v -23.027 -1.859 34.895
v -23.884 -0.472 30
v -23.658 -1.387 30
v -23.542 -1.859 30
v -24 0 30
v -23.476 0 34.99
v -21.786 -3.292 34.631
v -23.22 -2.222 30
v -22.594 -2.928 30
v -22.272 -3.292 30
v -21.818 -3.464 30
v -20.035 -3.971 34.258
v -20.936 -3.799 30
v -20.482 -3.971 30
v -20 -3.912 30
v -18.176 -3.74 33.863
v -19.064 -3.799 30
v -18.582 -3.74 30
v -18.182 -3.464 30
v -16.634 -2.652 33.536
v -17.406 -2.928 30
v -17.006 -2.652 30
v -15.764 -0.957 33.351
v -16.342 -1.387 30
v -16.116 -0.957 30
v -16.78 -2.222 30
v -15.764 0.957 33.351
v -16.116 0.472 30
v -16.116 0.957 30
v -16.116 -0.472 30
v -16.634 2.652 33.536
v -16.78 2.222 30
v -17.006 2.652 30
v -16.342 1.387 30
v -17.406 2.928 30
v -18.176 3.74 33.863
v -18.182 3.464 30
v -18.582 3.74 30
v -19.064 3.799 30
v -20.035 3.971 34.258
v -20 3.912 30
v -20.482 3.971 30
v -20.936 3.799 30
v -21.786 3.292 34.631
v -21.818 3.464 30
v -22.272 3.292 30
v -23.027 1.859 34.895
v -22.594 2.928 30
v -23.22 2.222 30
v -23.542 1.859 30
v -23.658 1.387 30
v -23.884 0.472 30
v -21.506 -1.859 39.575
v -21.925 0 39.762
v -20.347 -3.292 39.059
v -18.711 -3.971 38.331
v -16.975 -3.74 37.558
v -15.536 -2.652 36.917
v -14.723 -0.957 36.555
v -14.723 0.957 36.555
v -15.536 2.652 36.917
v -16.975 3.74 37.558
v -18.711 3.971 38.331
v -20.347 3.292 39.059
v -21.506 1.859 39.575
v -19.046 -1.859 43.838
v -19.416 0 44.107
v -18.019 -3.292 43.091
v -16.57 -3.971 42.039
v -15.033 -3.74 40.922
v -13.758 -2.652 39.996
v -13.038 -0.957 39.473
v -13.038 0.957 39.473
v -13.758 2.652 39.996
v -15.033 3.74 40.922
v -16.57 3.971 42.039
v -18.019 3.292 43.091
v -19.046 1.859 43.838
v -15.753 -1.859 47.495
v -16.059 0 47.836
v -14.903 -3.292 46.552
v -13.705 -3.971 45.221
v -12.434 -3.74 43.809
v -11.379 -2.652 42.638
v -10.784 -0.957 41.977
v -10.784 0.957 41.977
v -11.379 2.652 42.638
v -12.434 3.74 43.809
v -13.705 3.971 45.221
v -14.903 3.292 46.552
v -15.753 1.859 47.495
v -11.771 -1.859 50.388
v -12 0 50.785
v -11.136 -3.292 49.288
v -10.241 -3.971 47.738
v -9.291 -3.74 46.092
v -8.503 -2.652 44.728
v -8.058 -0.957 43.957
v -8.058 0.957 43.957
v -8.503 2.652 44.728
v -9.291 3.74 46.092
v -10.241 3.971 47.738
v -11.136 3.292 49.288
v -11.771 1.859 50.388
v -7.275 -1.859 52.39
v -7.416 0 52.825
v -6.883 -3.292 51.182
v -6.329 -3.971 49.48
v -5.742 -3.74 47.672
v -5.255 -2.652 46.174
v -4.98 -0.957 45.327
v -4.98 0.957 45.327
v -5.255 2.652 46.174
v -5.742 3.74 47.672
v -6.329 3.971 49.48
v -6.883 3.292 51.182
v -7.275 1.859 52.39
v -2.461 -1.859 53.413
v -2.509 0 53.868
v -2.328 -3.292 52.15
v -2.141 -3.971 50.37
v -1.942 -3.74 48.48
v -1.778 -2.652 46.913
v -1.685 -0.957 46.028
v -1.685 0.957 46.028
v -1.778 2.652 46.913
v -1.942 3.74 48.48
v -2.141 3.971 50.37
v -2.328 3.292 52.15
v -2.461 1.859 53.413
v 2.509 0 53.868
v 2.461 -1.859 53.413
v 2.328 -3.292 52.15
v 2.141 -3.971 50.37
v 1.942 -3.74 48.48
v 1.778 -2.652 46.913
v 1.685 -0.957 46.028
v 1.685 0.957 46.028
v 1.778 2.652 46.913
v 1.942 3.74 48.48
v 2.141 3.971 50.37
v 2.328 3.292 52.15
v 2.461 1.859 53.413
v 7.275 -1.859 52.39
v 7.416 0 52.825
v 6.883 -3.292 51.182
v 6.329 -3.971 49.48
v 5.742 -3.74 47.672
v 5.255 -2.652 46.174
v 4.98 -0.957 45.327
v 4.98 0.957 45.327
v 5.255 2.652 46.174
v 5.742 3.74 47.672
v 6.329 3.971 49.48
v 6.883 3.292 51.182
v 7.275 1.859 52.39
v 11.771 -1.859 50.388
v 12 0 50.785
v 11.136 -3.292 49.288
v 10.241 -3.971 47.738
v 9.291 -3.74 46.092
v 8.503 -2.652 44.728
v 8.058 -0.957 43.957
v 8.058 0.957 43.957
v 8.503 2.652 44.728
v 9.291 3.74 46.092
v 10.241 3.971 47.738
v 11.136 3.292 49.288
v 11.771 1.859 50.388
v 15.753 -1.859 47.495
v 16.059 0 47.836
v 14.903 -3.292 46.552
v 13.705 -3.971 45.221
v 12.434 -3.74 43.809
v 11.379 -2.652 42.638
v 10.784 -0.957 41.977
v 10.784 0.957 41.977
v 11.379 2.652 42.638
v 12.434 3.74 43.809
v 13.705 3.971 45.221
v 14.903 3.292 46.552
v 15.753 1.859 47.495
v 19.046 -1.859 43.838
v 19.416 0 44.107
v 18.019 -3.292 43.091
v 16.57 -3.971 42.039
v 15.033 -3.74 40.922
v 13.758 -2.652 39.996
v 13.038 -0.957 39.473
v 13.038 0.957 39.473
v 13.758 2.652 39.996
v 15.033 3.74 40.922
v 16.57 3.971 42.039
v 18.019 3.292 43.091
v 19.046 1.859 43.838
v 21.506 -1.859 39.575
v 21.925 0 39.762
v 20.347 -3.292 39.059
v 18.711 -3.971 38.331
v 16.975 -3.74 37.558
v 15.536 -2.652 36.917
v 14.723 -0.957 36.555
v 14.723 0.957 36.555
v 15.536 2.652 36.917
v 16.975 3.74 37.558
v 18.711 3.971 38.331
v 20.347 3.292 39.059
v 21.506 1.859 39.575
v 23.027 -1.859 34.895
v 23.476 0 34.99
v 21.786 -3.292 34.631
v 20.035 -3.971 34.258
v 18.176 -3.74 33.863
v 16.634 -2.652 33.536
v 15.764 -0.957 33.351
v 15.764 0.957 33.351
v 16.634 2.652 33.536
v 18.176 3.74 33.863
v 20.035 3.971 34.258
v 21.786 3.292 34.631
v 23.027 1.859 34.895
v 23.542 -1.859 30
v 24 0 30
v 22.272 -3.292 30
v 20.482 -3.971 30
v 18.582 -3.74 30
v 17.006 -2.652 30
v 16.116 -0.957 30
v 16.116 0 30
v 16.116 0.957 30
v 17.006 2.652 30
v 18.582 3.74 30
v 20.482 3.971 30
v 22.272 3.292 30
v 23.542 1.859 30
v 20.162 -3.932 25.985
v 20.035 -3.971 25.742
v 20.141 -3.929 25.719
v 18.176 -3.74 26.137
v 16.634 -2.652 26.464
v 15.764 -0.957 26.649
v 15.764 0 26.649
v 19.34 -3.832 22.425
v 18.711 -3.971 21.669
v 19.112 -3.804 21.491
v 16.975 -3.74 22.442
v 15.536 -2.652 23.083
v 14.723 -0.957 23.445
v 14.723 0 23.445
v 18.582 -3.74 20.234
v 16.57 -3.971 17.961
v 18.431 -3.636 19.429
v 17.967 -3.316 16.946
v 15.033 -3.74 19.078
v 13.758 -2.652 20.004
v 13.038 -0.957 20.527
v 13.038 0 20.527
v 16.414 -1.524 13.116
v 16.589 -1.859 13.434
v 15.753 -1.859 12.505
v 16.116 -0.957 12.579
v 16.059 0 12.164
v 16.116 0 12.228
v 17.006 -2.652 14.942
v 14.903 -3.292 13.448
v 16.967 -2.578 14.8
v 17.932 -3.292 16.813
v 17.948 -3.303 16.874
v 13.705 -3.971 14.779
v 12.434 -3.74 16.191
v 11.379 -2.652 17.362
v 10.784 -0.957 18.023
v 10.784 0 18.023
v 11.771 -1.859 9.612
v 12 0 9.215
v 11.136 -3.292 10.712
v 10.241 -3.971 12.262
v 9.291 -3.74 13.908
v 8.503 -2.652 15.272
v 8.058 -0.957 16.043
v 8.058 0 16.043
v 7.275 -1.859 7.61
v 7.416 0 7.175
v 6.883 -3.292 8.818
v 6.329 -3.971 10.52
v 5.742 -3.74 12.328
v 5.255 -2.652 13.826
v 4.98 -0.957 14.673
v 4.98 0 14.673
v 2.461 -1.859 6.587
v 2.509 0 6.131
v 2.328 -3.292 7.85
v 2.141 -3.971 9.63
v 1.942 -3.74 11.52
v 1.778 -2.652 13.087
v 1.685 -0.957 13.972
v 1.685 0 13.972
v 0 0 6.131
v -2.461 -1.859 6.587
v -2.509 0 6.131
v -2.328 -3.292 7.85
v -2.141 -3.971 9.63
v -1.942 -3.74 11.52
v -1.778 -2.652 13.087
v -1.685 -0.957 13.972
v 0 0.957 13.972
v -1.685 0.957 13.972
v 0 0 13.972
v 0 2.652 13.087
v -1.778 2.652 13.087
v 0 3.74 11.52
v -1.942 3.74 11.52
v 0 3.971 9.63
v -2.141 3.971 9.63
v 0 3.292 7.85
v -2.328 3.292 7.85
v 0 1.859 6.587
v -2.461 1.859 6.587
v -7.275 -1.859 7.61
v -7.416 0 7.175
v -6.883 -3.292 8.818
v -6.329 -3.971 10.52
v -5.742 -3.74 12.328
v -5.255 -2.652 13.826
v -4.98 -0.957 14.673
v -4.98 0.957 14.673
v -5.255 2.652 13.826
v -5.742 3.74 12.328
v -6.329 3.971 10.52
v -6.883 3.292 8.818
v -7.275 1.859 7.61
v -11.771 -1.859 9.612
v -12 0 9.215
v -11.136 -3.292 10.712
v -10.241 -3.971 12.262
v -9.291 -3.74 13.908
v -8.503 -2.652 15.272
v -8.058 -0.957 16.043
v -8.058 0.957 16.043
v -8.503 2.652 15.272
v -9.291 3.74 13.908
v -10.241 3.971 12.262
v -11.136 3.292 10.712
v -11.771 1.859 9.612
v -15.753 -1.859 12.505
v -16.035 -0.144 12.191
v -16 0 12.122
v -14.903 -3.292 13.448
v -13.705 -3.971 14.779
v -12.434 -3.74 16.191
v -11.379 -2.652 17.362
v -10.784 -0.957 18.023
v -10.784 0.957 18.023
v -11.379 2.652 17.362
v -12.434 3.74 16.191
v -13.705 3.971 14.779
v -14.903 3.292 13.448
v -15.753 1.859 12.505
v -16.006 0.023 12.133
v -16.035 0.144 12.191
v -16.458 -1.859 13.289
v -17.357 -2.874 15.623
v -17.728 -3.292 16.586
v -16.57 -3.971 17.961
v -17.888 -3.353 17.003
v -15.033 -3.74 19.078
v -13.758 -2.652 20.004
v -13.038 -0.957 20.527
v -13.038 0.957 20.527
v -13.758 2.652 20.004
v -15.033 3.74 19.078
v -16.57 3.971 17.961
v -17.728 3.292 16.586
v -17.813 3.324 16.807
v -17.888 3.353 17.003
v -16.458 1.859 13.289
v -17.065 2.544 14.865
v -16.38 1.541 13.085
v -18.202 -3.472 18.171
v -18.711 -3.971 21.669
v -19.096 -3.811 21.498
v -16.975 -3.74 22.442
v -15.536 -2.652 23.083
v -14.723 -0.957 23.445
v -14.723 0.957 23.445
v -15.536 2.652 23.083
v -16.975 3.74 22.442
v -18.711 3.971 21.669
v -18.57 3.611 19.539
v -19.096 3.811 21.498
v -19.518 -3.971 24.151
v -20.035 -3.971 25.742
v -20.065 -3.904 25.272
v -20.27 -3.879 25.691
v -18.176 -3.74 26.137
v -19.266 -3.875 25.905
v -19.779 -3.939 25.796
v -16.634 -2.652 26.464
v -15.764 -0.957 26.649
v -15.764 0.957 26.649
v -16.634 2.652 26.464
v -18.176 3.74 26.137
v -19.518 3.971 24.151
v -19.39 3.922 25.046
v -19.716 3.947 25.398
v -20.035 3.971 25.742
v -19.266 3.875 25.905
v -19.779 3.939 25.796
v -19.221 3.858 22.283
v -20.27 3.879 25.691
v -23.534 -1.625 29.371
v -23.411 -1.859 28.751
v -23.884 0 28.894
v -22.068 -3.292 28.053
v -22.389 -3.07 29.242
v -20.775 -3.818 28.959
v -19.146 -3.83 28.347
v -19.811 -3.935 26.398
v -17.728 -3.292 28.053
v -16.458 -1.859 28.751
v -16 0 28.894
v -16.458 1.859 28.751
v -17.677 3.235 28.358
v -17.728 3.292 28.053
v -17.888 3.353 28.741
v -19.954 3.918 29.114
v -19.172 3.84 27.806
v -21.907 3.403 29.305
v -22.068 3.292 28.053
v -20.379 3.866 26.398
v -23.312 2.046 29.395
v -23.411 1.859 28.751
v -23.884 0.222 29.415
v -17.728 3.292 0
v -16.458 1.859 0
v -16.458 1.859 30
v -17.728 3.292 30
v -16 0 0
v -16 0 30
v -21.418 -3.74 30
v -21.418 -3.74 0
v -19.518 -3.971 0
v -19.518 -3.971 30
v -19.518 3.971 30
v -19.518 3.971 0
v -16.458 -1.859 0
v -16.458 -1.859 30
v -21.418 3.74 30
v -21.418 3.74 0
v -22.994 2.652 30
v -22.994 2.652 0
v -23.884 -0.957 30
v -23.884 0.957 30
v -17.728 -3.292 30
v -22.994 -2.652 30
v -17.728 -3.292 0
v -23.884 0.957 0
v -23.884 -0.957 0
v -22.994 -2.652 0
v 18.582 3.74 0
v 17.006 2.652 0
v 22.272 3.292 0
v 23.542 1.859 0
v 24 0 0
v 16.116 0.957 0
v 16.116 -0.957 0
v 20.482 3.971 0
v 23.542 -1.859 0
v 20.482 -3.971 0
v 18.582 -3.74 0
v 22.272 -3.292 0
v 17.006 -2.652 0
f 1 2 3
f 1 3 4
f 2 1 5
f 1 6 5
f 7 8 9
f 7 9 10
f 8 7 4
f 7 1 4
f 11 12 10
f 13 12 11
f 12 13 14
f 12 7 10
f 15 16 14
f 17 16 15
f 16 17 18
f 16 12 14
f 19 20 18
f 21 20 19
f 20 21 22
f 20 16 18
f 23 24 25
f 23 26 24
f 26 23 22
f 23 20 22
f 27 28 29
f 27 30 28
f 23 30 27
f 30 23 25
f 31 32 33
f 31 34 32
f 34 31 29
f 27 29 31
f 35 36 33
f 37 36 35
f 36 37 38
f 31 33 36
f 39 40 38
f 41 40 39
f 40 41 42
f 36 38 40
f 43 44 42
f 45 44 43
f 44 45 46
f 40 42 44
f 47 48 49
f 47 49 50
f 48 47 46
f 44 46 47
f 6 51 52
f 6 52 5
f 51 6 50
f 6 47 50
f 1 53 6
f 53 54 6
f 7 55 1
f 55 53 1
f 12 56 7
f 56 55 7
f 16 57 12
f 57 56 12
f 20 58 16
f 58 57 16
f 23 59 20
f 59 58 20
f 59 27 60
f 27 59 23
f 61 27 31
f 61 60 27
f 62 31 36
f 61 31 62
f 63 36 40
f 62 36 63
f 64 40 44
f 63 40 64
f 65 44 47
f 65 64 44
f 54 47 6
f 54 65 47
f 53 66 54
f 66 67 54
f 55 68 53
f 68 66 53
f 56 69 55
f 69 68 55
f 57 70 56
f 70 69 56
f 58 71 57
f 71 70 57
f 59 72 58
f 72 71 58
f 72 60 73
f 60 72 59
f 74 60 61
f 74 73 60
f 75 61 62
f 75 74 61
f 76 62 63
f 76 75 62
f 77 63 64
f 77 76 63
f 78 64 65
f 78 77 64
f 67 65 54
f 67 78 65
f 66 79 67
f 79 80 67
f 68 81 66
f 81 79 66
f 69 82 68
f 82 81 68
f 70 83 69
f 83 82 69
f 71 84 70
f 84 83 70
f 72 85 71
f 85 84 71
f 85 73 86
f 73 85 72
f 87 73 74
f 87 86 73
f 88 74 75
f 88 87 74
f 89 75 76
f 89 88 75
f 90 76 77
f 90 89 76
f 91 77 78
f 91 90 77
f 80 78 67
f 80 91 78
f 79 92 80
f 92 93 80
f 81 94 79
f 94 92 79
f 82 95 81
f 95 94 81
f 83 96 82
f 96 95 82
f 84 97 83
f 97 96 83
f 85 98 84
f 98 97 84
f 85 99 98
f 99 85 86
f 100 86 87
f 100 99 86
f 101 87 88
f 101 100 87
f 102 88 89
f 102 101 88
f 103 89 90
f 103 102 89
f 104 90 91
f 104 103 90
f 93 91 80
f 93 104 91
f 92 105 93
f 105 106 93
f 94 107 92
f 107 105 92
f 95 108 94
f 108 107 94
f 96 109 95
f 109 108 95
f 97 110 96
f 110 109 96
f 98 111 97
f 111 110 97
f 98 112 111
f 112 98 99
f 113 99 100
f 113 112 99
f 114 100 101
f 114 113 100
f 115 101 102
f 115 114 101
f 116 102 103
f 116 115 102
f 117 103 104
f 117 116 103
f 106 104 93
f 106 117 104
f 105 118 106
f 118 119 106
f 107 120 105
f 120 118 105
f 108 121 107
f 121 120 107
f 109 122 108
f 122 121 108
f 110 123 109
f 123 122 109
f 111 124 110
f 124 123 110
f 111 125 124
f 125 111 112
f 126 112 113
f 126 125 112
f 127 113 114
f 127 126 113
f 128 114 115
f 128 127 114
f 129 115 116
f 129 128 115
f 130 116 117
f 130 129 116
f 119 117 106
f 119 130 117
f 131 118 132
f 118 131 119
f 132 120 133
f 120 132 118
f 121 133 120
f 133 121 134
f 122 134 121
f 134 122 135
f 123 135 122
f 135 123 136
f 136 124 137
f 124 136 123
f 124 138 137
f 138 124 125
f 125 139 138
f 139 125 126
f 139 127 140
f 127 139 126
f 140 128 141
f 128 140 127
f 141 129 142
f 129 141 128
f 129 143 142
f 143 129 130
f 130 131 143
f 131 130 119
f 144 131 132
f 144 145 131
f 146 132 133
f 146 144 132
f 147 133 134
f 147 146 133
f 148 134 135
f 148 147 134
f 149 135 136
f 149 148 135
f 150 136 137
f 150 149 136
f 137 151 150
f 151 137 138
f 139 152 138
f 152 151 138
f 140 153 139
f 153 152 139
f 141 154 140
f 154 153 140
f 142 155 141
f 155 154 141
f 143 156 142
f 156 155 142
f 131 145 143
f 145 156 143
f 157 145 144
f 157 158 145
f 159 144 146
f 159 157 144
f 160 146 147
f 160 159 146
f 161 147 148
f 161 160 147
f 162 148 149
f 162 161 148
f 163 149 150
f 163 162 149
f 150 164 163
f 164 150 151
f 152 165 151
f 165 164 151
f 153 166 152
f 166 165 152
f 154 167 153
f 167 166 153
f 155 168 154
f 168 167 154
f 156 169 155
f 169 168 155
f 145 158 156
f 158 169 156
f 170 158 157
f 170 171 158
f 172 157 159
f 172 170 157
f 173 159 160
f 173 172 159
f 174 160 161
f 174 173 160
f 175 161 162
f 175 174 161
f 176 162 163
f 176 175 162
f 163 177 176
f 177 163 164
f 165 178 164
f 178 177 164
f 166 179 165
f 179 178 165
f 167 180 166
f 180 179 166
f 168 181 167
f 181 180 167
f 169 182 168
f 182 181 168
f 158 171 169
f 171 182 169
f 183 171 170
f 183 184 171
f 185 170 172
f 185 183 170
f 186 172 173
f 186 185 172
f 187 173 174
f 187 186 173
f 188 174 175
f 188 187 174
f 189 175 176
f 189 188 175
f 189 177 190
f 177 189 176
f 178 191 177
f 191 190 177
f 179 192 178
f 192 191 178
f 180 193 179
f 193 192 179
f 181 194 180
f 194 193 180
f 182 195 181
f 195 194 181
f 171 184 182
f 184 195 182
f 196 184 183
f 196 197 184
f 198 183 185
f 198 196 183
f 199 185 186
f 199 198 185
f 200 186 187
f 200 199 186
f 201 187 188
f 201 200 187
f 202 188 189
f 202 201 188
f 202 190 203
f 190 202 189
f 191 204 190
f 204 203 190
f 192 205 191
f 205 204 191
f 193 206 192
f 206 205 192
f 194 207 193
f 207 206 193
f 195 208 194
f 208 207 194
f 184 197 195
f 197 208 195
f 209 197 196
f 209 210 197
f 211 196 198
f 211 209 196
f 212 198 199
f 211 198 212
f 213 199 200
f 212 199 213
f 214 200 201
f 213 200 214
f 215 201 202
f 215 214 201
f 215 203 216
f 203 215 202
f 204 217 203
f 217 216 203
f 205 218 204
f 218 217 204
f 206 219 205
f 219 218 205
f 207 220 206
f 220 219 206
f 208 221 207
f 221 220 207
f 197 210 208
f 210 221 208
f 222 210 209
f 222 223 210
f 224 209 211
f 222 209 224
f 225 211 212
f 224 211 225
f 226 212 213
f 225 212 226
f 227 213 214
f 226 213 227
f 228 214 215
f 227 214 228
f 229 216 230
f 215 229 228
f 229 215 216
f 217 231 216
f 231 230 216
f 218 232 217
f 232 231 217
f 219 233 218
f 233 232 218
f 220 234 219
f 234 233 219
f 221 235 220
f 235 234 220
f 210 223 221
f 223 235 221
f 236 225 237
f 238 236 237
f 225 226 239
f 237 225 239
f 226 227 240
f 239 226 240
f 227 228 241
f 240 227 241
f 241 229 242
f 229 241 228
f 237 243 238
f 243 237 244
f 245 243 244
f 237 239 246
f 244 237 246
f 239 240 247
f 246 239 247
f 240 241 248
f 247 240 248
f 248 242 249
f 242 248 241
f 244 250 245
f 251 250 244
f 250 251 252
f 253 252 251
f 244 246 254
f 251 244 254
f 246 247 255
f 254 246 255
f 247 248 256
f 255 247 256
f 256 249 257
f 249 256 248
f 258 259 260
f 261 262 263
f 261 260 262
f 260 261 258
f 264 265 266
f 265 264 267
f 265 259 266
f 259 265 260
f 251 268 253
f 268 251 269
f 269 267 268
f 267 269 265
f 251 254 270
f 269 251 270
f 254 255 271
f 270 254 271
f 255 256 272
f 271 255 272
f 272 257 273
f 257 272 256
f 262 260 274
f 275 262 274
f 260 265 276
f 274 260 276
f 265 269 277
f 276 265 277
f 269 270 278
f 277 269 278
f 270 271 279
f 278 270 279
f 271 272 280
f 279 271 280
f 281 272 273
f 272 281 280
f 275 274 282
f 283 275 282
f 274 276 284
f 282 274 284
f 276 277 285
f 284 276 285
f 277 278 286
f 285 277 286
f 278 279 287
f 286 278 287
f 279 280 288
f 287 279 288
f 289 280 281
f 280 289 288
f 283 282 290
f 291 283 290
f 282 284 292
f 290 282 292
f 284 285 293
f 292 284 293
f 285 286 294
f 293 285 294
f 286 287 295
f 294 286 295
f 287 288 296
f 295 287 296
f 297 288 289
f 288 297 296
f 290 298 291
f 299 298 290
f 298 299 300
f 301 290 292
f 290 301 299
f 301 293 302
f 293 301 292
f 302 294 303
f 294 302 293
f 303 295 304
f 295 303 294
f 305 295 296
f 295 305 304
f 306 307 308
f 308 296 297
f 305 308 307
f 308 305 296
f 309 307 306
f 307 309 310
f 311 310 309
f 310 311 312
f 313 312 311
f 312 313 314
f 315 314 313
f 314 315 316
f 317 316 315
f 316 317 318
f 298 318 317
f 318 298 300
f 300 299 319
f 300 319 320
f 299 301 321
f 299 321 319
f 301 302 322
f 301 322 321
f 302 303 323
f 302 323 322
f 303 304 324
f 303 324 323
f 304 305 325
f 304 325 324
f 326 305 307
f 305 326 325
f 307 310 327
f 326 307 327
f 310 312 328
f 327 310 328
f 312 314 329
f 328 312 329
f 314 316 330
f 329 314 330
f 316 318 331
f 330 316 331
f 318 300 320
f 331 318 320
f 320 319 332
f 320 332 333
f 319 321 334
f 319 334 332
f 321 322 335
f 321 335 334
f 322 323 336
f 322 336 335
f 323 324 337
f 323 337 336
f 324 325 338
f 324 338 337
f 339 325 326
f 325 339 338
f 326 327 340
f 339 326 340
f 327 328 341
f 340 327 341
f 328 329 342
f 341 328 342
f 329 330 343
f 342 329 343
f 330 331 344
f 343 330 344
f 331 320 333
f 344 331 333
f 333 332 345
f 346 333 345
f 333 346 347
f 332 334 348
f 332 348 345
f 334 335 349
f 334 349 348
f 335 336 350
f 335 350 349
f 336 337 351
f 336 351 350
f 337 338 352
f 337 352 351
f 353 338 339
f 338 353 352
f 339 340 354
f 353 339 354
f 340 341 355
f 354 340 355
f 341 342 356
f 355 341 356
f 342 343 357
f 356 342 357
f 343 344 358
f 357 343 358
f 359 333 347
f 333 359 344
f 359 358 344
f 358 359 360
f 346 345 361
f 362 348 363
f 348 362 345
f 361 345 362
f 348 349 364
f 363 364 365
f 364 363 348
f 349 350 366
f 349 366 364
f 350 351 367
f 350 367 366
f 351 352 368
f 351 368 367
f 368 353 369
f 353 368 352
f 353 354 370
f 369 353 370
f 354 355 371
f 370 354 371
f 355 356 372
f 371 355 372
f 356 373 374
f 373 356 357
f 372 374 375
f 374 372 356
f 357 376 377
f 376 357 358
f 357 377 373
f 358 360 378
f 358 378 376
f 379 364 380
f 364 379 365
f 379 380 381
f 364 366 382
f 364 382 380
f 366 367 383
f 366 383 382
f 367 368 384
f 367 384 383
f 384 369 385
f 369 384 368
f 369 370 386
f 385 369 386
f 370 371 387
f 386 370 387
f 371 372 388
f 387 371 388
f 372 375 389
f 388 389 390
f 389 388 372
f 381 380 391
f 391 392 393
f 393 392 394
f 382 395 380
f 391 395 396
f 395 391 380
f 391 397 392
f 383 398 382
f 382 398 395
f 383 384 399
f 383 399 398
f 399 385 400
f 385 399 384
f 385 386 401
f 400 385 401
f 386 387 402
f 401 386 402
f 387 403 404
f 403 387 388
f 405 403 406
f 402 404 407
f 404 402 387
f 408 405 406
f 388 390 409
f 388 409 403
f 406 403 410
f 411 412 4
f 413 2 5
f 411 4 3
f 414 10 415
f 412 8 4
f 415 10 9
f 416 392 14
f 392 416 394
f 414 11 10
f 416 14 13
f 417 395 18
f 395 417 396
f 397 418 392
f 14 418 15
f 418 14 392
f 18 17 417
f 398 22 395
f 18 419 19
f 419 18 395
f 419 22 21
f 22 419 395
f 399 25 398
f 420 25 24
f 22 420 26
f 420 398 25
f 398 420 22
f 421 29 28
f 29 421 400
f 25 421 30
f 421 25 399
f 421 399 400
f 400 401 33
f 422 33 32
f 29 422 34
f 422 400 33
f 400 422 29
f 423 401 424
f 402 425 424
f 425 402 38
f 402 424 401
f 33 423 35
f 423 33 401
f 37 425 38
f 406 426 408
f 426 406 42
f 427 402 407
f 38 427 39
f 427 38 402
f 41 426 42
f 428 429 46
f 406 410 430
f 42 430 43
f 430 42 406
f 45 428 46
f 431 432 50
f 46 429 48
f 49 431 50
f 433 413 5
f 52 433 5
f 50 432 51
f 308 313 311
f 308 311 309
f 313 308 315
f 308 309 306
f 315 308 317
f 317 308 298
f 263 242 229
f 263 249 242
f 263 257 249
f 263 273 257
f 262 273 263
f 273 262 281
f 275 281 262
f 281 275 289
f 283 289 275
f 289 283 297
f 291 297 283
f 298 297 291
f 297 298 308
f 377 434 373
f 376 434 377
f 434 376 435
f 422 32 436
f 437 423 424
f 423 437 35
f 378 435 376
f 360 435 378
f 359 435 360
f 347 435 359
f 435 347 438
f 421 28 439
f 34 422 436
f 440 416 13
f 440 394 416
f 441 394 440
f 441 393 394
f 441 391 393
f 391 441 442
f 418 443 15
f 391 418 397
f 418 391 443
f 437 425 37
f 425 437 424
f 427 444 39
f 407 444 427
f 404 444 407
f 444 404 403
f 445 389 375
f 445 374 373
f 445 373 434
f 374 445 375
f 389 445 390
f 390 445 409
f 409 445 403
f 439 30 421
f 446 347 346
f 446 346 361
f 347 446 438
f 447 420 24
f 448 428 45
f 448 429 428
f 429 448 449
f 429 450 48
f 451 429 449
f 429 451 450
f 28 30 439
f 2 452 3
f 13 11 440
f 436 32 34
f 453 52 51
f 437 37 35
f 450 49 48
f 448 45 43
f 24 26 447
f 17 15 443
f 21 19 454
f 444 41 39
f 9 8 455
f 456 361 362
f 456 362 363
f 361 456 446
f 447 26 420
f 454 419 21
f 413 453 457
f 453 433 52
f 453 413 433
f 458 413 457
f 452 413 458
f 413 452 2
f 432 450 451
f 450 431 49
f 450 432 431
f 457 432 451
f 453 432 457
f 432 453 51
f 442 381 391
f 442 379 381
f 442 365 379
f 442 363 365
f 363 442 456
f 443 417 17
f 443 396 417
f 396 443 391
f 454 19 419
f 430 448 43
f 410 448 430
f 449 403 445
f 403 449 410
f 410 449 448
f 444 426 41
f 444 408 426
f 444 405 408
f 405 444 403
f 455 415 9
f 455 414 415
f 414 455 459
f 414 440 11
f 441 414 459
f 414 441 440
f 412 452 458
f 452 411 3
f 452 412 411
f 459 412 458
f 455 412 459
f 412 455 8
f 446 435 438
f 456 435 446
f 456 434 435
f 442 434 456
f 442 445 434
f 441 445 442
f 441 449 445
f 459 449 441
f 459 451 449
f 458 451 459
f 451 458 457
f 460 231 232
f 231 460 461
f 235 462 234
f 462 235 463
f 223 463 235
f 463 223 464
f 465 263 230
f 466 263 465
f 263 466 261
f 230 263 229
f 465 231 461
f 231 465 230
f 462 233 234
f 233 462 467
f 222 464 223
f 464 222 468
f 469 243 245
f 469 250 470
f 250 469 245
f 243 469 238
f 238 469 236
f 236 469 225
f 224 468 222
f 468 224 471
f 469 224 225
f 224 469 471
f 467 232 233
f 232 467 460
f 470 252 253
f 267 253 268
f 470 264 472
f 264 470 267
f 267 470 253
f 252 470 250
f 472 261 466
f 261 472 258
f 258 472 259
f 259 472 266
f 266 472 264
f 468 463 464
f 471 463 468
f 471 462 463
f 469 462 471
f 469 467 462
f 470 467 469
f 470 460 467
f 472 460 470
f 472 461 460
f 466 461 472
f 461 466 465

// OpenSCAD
/* doodle-meta {"version":1,"parameters":{"leg_length":{"label":"Leg Length","description":"Length of the straight vertical legs","unit":"mm","feature":"leg_length"},"bend_radius":{"label":"Bend Radius","description":"Centerline radius of the semi-circular bend","unit":"mm","feature":"bend_radius"},"rod_diameter":{"label":"Rod Diameter","description":"Diameter of the handle cross-section","unit":"mm","feature":"rod_diameter"}},"features":{"leg_length":{"kind":"dimension","axis":"z","label":"Leg Length"},"bend_radius":{"kind":"dimension","axis":"x","label":"Bend Radius"},"rod_diameter":{"kind":"dimension","axis":"x","label":"Rod Diameter"}}} */

// Parameters
leg_length = 30;
bend_radius = 20;
rod_diameter = 8;

// Derived dimensions
rod_radius = rod_diameter / 2;

// Module to create the handle
module handle() {
    // 1. Left Leg
    // Cylinder axis along Z. Centered at X = -bend_radius, Y = 0.
    // Height = leg_length.
    // To ensure watertight connection with the bend, we extend the leg slightly into the bend area or rely on union.
    // Union handles overlaps.
    translate([-bend_radius, 0, 0])
        cylinder(h = leg_length, r = rod_radius, center = false);

    // 2. Right Leg
    translate([bend_radius, 0, 0])
        cylinder(h = leg_length, r = rod_radius, center = false);

    // 3. Bend (Semi-circle)
    // The bend connects the tops of the legs.
    // Center of the semi-circle arc is at (0, 0, leg_length).
    // The arc goes from angle 180 (left) to 0 (right) in the XZ plane?
    // No, the bend is in the XZ plane (since legs are vertical along Z and separated along X).
    // The cross-section is circular, so we sweep a circle along the arc.
    // The arc is in the XZ plane. The circle profile is in the YZ plane (perpendicular to the tangent).
    // Actually, simpler approach:
    // Create a torus segment or use rotate_extrude?
    // Since the path is a semi-circle in the XZ plane, and the profile is a circle perpendicular to the path...
    // The path tangent at the top is along X. The profile is in YZ.
    // The path tangent at the sides is along Z. The profile is in XY.
    // This is a standard sweep.
    // In OpenSCAD, we can approximate this by creating a torus and cutting it, or using rotate_extrude if the axis of rotation is correct.
    // The bend is a semi-circle in the XZ plane.
    // If we rotate_extrude a circle centered at (bend_radius, 0) around the Z axis, we get a torus.
    // But the bend is in the XZ plane, meaning the "hole" of the torus is along the Y axis?
    // Let's visualize:
    // Legs are at X = +/- R. They go up Z.
    // The bend connects them. It curves "over" the Y axis? No, it curves in the XZ plane.
    // The center of curvature is at (0, 0, leg_length).
    // The arc is in the XZ plane.
    // So the "tube" follows this arc.
    // This is equivalent to a torus with major radius bend_radius and minor radius rod_radius,
    // centered at (0, 0, leg_length), with the torus axis along Y.
    // A standard torus in OpenSCAD (rotate_extrude) has its axis along Z.
    // So we need to rotate the torus 90 degrees around X to make its axis along Y.
    
    // Create Torus:
    // Major radius = bend_radius.
    // Minor radius = rod_radius.
    // Centered at origin initially.
    // Then translate to (0, 0, leg_length).
    // Then rotate 90 deg around X to align the torus axis with Y.
    // Then cut it in half to keep only the top half (Z > leg_length).
    
    // Wait, the legs connect to the bend.
    // The legs are cylinders along Z.
    // The bend is a semi-torus.
    // The connection points are at ( +/- bend_radius, 0, leg_length ).
    // The torus center is at (0, 0, leg_length).
    // The torus axis is along Y.
    // The torus lies in the XZ plane (locally).
    // We want the upper half of the torus (Z > leg_length).
    
    difference() {
        // Full Torus
        translate([0, 0, leg_length])
            rotate([90, 0, 0])
                rotate_extrude()
                    translate([bend_radius, 0])
                        circle(r = rod_radius);
        
        // Cut off the bottom half of the torus
        // The torus center is at Z = leg_length.
        // We want to keep Z > leg_length.
        // So we subtract a box that covers Z < leg_length.
        // The box should be large enough to cover the entire torus width and depth.
        // Torus extent in X: +/- (bend_radius + rod_radius).
        // Torus extent in Y: +/- rod_radius.
        // Torus extent in Z: leg_length +/- (bend_radius + rod_radius).
        // We cut everything below Z = leg_length.
        // Box dimensions:
        // Width (X): 2 * (bend_radius + rod_radius) + margin
        // Depth (Y): 2 * rod_radius + margin
        // Height (Z): (bend_radius + rod_radius) + margin (to cover from center down)
        // Position: Centered in X and Y, bottom at Z = leg_length - (bend_radius + rod_radius) - margin, top at Z = leg_length.
        
        translate([0, 0, leg_length - (bend_radius + rod_radius) - 1])
            cube([2 * (bend_radius + rod_radius) + 2, 2 * rod_radius + 2, (bend_radius + rod_radius) + 1], center = false);
    }
    
    // Note: The legs are cylinders from Z=0 to Z=leg_length.
    // The torus is centered at Z=leg_length.
    // The union of legs and the top-half torus will form the handle.
    // The legs end at Z=leg_length. The torus starts at Z=leg_length (equator).
    // They touch at the equator.
    // To ensure a solid connection, the legs should overlap with the torus slightly or the torus should extend down.
    // However, the "leg_length" parameter usually implies the straight part.
    // If the legs are exactly leg_length, they meet the torus at the tangent point.
    // In OpenSCAD, union of touching solids is fine.
    // But to be safe against rendering artifacts, we can extend the legs slightly into the bend region.
    // Let's extend the legs by rod_radius/2 into the bend area?
    // No, the bend is curved. The legs are straight.
    // The tangent of the torus at the equator (Z=leg_length, X=+/-bend_radius) is vertical (along Z).
    // So the legs align perfectly with the torus at the connection point.
    // Union should work.
}

// Instantiate the handle
handle();
